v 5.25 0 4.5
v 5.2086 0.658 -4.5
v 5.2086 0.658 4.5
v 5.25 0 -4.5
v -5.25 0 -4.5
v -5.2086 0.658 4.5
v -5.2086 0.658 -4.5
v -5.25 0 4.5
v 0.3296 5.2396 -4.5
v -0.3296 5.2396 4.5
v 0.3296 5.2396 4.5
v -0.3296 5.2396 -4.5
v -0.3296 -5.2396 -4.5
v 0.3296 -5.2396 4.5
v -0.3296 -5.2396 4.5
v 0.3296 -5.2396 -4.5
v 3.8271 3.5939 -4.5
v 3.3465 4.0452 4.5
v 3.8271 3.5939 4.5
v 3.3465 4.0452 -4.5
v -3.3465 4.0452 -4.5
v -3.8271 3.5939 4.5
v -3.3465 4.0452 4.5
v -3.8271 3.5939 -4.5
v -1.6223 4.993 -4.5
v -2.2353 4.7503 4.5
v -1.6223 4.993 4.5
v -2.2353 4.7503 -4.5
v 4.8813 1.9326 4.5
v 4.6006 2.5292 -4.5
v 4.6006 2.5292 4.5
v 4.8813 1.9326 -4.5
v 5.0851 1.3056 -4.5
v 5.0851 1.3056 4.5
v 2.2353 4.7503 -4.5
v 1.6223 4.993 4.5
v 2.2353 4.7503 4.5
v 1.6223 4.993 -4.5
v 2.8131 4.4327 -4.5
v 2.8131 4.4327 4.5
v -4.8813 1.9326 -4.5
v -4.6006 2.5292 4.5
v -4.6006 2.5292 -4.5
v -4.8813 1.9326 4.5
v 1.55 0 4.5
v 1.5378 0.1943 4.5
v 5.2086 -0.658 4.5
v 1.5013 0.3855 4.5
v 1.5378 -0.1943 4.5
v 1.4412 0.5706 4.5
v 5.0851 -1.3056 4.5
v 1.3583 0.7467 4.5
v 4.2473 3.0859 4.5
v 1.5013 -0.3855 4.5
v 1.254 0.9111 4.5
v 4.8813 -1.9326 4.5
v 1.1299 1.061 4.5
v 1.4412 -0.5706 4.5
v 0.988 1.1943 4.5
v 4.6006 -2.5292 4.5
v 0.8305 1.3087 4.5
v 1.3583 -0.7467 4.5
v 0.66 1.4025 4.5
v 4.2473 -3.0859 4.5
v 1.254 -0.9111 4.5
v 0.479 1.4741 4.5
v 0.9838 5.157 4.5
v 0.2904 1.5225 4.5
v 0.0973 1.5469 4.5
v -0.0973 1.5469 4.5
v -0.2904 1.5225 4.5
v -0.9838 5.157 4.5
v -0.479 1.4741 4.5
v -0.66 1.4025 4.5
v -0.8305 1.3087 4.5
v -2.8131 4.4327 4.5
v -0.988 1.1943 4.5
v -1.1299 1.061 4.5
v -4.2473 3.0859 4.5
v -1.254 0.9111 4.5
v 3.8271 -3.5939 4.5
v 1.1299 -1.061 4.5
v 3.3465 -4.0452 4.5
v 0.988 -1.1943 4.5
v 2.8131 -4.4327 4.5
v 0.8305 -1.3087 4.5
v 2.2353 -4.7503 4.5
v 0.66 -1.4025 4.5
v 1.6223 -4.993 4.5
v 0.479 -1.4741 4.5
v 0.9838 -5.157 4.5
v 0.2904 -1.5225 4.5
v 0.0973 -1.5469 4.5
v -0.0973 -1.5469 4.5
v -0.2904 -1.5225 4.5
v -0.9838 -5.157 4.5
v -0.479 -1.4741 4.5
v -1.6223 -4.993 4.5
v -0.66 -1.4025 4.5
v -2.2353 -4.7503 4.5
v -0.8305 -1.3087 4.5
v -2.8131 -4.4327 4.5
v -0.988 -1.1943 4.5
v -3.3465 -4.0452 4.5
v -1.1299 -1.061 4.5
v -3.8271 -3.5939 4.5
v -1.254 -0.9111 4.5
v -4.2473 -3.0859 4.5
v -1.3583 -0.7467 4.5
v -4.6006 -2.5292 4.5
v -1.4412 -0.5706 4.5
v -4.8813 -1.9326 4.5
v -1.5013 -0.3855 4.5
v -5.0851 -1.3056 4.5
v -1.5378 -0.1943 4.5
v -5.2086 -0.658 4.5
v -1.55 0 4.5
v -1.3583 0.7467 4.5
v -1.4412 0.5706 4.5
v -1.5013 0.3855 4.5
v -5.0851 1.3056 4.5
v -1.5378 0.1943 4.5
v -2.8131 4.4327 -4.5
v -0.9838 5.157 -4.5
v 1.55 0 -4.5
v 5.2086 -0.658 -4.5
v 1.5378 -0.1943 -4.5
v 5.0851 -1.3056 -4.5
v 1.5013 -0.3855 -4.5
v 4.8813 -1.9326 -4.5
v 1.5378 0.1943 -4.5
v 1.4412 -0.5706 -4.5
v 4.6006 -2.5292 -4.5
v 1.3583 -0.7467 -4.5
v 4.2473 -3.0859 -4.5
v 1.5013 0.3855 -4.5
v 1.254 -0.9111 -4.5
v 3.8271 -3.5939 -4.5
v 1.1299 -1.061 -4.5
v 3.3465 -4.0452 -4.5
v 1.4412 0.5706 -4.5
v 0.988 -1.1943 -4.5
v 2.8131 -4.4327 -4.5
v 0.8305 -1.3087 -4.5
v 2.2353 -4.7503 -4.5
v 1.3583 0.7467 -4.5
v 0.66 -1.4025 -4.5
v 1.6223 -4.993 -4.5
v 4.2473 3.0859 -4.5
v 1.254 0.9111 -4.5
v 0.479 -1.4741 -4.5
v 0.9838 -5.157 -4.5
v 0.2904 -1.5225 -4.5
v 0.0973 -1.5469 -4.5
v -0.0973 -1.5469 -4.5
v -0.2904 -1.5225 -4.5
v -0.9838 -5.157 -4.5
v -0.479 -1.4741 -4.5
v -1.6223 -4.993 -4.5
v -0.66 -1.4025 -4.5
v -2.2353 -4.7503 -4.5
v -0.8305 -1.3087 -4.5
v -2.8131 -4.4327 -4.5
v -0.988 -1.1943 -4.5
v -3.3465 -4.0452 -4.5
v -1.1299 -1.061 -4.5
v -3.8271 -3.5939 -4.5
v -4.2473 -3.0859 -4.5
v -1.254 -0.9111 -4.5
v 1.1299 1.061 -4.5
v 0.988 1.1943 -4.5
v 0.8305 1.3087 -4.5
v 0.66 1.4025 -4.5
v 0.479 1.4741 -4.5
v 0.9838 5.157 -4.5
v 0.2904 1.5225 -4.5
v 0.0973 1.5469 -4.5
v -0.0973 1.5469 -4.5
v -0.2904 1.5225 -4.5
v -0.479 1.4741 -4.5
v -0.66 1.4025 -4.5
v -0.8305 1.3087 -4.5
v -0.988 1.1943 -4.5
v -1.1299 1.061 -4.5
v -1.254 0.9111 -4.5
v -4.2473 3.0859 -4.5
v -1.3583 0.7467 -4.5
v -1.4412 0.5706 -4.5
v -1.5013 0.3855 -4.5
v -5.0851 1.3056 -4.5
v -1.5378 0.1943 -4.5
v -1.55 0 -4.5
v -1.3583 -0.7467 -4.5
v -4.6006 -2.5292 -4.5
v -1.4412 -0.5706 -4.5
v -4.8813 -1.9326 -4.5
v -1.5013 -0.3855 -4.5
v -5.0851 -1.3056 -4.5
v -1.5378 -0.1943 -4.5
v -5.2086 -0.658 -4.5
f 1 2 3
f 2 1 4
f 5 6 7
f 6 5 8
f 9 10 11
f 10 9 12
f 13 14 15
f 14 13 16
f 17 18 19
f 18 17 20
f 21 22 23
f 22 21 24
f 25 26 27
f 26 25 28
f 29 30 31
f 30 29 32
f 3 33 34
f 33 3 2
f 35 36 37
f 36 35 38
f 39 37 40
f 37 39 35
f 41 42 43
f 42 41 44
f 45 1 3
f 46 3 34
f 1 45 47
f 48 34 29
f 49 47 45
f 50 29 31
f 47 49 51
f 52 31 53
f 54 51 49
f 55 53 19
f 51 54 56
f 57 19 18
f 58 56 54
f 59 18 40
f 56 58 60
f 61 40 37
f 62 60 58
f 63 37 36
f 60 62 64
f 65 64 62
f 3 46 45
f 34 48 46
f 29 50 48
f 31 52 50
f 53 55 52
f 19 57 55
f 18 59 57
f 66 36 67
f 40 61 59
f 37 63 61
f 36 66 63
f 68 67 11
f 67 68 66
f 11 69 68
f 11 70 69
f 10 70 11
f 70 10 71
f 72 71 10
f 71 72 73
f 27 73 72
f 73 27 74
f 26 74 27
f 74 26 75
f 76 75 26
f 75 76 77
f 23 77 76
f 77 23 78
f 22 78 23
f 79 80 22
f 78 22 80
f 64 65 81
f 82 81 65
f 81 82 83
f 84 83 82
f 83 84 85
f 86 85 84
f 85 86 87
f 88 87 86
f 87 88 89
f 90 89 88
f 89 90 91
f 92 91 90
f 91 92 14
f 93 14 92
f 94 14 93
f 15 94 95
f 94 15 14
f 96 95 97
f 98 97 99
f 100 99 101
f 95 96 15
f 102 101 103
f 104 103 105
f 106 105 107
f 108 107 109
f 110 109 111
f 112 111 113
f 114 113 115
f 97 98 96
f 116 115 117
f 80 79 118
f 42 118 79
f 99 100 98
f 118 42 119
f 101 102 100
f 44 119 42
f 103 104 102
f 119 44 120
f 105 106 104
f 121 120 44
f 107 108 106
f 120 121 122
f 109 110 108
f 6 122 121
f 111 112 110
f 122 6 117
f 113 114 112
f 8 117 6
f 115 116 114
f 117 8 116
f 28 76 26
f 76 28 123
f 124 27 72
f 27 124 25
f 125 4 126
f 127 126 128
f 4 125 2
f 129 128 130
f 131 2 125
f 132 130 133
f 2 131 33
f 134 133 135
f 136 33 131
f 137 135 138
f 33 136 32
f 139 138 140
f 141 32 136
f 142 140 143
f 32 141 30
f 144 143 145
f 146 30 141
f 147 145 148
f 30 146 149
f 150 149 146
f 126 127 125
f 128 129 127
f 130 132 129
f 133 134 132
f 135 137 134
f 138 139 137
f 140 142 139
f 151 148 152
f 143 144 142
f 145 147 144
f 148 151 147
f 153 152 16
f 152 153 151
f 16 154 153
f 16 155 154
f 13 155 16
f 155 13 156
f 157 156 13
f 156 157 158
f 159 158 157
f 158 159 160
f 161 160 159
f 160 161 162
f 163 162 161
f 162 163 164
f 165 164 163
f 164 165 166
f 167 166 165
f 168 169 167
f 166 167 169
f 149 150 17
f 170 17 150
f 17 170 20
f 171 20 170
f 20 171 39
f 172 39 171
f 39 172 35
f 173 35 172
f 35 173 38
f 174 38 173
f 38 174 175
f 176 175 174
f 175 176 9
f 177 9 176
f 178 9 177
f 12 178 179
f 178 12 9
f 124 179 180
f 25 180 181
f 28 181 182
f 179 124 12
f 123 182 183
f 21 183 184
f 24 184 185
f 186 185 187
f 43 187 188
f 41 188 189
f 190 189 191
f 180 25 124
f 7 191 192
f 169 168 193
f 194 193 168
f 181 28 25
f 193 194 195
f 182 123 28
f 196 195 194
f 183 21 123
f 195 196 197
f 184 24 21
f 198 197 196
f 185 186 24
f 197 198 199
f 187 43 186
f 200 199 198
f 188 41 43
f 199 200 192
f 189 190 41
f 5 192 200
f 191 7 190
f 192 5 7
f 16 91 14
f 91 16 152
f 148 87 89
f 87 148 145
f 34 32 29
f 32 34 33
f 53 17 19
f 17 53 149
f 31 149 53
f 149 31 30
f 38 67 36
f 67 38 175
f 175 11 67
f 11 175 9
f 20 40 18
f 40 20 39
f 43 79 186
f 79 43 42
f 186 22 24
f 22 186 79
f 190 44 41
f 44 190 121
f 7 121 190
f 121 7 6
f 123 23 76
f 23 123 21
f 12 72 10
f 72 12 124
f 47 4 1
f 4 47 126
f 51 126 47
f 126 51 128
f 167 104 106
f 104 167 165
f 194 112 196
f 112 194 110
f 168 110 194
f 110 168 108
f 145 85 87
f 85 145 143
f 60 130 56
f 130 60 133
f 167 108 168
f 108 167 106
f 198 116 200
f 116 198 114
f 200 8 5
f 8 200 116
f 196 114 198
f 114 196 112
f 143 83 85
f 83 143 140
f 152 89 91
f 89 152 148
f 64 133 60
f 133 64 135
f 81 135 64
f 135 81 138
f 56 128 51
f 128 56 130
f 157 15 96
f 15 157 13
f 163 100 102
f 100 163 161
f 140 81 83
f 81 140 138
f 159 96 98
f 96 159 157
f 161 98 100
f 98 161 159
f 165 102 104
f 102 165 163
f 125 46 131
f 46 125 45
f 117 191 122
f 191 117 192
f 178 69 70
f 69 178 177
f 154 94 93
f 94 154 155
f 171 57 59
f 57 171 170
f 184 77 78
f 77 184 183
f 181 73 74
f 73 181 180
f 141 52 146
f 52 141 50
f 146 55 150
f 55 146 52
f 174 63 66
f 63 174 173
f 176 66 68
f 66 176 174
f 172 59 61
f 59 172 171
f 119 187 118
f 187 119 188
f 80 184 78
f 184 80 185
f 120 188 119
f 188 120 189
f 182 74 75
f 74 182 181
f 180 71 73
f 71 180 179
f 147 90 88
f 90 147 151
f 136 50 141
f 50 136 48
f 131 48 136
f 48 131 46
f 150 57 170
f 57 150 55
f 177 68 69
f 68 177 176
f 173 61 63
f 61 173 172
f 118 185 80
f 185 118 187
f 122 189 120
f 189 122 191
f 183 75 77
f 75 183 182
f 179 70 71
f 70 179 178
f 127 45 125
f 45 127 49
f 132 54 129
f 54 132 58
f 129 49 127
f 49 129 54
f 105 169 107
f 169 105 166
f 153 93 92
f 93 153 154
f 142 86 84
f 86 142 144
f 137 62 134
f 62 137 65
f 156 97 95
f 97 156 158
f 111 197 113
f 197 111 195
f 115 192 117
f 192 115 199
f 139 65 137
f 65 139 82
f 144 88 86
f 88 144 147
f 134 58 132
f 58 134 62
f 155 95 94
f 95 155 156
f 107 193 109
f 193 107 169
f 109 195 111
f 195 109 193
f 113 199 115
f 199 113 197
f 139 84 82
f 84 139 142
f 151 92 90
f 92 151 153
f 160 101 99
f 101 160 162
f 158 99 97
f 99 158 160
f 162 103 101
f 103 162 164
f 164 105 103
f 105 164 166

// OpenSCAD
$fn = 50;


difference() {
	union() {
		translate(v = [0, 0, -4.5000000000]) {
			cylinder(h = 9, r = 5.2500000000);
		}
	}
	union() {
		translate(v = [0, 0, -100.0000000000]) {
			cylinder(h = 200, r = 1.5500000000);
		}
	}
}
